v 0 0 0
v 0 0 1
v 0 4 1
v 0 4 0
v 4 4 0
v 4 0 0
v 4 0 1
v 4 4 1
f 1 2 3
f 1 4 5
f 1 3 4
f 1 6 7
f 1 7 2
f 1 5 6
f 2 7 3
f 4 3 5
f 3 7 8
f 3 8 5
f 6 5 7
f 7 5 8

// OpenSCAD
/* Warning, this is a very basic generator with a lot of approximation 
input data : [VQFN, RPB, 4x4x1mm, 28, , A, C04-21388A]
generated by com.zoubworld.electronics.cad.model3d.Basic
Date : Sun Feb 15 10:50:49 CET 2026
*/

//body
color("black")
translate([0,0,0])
cube([4.0,4.0,1.0], center=false);
